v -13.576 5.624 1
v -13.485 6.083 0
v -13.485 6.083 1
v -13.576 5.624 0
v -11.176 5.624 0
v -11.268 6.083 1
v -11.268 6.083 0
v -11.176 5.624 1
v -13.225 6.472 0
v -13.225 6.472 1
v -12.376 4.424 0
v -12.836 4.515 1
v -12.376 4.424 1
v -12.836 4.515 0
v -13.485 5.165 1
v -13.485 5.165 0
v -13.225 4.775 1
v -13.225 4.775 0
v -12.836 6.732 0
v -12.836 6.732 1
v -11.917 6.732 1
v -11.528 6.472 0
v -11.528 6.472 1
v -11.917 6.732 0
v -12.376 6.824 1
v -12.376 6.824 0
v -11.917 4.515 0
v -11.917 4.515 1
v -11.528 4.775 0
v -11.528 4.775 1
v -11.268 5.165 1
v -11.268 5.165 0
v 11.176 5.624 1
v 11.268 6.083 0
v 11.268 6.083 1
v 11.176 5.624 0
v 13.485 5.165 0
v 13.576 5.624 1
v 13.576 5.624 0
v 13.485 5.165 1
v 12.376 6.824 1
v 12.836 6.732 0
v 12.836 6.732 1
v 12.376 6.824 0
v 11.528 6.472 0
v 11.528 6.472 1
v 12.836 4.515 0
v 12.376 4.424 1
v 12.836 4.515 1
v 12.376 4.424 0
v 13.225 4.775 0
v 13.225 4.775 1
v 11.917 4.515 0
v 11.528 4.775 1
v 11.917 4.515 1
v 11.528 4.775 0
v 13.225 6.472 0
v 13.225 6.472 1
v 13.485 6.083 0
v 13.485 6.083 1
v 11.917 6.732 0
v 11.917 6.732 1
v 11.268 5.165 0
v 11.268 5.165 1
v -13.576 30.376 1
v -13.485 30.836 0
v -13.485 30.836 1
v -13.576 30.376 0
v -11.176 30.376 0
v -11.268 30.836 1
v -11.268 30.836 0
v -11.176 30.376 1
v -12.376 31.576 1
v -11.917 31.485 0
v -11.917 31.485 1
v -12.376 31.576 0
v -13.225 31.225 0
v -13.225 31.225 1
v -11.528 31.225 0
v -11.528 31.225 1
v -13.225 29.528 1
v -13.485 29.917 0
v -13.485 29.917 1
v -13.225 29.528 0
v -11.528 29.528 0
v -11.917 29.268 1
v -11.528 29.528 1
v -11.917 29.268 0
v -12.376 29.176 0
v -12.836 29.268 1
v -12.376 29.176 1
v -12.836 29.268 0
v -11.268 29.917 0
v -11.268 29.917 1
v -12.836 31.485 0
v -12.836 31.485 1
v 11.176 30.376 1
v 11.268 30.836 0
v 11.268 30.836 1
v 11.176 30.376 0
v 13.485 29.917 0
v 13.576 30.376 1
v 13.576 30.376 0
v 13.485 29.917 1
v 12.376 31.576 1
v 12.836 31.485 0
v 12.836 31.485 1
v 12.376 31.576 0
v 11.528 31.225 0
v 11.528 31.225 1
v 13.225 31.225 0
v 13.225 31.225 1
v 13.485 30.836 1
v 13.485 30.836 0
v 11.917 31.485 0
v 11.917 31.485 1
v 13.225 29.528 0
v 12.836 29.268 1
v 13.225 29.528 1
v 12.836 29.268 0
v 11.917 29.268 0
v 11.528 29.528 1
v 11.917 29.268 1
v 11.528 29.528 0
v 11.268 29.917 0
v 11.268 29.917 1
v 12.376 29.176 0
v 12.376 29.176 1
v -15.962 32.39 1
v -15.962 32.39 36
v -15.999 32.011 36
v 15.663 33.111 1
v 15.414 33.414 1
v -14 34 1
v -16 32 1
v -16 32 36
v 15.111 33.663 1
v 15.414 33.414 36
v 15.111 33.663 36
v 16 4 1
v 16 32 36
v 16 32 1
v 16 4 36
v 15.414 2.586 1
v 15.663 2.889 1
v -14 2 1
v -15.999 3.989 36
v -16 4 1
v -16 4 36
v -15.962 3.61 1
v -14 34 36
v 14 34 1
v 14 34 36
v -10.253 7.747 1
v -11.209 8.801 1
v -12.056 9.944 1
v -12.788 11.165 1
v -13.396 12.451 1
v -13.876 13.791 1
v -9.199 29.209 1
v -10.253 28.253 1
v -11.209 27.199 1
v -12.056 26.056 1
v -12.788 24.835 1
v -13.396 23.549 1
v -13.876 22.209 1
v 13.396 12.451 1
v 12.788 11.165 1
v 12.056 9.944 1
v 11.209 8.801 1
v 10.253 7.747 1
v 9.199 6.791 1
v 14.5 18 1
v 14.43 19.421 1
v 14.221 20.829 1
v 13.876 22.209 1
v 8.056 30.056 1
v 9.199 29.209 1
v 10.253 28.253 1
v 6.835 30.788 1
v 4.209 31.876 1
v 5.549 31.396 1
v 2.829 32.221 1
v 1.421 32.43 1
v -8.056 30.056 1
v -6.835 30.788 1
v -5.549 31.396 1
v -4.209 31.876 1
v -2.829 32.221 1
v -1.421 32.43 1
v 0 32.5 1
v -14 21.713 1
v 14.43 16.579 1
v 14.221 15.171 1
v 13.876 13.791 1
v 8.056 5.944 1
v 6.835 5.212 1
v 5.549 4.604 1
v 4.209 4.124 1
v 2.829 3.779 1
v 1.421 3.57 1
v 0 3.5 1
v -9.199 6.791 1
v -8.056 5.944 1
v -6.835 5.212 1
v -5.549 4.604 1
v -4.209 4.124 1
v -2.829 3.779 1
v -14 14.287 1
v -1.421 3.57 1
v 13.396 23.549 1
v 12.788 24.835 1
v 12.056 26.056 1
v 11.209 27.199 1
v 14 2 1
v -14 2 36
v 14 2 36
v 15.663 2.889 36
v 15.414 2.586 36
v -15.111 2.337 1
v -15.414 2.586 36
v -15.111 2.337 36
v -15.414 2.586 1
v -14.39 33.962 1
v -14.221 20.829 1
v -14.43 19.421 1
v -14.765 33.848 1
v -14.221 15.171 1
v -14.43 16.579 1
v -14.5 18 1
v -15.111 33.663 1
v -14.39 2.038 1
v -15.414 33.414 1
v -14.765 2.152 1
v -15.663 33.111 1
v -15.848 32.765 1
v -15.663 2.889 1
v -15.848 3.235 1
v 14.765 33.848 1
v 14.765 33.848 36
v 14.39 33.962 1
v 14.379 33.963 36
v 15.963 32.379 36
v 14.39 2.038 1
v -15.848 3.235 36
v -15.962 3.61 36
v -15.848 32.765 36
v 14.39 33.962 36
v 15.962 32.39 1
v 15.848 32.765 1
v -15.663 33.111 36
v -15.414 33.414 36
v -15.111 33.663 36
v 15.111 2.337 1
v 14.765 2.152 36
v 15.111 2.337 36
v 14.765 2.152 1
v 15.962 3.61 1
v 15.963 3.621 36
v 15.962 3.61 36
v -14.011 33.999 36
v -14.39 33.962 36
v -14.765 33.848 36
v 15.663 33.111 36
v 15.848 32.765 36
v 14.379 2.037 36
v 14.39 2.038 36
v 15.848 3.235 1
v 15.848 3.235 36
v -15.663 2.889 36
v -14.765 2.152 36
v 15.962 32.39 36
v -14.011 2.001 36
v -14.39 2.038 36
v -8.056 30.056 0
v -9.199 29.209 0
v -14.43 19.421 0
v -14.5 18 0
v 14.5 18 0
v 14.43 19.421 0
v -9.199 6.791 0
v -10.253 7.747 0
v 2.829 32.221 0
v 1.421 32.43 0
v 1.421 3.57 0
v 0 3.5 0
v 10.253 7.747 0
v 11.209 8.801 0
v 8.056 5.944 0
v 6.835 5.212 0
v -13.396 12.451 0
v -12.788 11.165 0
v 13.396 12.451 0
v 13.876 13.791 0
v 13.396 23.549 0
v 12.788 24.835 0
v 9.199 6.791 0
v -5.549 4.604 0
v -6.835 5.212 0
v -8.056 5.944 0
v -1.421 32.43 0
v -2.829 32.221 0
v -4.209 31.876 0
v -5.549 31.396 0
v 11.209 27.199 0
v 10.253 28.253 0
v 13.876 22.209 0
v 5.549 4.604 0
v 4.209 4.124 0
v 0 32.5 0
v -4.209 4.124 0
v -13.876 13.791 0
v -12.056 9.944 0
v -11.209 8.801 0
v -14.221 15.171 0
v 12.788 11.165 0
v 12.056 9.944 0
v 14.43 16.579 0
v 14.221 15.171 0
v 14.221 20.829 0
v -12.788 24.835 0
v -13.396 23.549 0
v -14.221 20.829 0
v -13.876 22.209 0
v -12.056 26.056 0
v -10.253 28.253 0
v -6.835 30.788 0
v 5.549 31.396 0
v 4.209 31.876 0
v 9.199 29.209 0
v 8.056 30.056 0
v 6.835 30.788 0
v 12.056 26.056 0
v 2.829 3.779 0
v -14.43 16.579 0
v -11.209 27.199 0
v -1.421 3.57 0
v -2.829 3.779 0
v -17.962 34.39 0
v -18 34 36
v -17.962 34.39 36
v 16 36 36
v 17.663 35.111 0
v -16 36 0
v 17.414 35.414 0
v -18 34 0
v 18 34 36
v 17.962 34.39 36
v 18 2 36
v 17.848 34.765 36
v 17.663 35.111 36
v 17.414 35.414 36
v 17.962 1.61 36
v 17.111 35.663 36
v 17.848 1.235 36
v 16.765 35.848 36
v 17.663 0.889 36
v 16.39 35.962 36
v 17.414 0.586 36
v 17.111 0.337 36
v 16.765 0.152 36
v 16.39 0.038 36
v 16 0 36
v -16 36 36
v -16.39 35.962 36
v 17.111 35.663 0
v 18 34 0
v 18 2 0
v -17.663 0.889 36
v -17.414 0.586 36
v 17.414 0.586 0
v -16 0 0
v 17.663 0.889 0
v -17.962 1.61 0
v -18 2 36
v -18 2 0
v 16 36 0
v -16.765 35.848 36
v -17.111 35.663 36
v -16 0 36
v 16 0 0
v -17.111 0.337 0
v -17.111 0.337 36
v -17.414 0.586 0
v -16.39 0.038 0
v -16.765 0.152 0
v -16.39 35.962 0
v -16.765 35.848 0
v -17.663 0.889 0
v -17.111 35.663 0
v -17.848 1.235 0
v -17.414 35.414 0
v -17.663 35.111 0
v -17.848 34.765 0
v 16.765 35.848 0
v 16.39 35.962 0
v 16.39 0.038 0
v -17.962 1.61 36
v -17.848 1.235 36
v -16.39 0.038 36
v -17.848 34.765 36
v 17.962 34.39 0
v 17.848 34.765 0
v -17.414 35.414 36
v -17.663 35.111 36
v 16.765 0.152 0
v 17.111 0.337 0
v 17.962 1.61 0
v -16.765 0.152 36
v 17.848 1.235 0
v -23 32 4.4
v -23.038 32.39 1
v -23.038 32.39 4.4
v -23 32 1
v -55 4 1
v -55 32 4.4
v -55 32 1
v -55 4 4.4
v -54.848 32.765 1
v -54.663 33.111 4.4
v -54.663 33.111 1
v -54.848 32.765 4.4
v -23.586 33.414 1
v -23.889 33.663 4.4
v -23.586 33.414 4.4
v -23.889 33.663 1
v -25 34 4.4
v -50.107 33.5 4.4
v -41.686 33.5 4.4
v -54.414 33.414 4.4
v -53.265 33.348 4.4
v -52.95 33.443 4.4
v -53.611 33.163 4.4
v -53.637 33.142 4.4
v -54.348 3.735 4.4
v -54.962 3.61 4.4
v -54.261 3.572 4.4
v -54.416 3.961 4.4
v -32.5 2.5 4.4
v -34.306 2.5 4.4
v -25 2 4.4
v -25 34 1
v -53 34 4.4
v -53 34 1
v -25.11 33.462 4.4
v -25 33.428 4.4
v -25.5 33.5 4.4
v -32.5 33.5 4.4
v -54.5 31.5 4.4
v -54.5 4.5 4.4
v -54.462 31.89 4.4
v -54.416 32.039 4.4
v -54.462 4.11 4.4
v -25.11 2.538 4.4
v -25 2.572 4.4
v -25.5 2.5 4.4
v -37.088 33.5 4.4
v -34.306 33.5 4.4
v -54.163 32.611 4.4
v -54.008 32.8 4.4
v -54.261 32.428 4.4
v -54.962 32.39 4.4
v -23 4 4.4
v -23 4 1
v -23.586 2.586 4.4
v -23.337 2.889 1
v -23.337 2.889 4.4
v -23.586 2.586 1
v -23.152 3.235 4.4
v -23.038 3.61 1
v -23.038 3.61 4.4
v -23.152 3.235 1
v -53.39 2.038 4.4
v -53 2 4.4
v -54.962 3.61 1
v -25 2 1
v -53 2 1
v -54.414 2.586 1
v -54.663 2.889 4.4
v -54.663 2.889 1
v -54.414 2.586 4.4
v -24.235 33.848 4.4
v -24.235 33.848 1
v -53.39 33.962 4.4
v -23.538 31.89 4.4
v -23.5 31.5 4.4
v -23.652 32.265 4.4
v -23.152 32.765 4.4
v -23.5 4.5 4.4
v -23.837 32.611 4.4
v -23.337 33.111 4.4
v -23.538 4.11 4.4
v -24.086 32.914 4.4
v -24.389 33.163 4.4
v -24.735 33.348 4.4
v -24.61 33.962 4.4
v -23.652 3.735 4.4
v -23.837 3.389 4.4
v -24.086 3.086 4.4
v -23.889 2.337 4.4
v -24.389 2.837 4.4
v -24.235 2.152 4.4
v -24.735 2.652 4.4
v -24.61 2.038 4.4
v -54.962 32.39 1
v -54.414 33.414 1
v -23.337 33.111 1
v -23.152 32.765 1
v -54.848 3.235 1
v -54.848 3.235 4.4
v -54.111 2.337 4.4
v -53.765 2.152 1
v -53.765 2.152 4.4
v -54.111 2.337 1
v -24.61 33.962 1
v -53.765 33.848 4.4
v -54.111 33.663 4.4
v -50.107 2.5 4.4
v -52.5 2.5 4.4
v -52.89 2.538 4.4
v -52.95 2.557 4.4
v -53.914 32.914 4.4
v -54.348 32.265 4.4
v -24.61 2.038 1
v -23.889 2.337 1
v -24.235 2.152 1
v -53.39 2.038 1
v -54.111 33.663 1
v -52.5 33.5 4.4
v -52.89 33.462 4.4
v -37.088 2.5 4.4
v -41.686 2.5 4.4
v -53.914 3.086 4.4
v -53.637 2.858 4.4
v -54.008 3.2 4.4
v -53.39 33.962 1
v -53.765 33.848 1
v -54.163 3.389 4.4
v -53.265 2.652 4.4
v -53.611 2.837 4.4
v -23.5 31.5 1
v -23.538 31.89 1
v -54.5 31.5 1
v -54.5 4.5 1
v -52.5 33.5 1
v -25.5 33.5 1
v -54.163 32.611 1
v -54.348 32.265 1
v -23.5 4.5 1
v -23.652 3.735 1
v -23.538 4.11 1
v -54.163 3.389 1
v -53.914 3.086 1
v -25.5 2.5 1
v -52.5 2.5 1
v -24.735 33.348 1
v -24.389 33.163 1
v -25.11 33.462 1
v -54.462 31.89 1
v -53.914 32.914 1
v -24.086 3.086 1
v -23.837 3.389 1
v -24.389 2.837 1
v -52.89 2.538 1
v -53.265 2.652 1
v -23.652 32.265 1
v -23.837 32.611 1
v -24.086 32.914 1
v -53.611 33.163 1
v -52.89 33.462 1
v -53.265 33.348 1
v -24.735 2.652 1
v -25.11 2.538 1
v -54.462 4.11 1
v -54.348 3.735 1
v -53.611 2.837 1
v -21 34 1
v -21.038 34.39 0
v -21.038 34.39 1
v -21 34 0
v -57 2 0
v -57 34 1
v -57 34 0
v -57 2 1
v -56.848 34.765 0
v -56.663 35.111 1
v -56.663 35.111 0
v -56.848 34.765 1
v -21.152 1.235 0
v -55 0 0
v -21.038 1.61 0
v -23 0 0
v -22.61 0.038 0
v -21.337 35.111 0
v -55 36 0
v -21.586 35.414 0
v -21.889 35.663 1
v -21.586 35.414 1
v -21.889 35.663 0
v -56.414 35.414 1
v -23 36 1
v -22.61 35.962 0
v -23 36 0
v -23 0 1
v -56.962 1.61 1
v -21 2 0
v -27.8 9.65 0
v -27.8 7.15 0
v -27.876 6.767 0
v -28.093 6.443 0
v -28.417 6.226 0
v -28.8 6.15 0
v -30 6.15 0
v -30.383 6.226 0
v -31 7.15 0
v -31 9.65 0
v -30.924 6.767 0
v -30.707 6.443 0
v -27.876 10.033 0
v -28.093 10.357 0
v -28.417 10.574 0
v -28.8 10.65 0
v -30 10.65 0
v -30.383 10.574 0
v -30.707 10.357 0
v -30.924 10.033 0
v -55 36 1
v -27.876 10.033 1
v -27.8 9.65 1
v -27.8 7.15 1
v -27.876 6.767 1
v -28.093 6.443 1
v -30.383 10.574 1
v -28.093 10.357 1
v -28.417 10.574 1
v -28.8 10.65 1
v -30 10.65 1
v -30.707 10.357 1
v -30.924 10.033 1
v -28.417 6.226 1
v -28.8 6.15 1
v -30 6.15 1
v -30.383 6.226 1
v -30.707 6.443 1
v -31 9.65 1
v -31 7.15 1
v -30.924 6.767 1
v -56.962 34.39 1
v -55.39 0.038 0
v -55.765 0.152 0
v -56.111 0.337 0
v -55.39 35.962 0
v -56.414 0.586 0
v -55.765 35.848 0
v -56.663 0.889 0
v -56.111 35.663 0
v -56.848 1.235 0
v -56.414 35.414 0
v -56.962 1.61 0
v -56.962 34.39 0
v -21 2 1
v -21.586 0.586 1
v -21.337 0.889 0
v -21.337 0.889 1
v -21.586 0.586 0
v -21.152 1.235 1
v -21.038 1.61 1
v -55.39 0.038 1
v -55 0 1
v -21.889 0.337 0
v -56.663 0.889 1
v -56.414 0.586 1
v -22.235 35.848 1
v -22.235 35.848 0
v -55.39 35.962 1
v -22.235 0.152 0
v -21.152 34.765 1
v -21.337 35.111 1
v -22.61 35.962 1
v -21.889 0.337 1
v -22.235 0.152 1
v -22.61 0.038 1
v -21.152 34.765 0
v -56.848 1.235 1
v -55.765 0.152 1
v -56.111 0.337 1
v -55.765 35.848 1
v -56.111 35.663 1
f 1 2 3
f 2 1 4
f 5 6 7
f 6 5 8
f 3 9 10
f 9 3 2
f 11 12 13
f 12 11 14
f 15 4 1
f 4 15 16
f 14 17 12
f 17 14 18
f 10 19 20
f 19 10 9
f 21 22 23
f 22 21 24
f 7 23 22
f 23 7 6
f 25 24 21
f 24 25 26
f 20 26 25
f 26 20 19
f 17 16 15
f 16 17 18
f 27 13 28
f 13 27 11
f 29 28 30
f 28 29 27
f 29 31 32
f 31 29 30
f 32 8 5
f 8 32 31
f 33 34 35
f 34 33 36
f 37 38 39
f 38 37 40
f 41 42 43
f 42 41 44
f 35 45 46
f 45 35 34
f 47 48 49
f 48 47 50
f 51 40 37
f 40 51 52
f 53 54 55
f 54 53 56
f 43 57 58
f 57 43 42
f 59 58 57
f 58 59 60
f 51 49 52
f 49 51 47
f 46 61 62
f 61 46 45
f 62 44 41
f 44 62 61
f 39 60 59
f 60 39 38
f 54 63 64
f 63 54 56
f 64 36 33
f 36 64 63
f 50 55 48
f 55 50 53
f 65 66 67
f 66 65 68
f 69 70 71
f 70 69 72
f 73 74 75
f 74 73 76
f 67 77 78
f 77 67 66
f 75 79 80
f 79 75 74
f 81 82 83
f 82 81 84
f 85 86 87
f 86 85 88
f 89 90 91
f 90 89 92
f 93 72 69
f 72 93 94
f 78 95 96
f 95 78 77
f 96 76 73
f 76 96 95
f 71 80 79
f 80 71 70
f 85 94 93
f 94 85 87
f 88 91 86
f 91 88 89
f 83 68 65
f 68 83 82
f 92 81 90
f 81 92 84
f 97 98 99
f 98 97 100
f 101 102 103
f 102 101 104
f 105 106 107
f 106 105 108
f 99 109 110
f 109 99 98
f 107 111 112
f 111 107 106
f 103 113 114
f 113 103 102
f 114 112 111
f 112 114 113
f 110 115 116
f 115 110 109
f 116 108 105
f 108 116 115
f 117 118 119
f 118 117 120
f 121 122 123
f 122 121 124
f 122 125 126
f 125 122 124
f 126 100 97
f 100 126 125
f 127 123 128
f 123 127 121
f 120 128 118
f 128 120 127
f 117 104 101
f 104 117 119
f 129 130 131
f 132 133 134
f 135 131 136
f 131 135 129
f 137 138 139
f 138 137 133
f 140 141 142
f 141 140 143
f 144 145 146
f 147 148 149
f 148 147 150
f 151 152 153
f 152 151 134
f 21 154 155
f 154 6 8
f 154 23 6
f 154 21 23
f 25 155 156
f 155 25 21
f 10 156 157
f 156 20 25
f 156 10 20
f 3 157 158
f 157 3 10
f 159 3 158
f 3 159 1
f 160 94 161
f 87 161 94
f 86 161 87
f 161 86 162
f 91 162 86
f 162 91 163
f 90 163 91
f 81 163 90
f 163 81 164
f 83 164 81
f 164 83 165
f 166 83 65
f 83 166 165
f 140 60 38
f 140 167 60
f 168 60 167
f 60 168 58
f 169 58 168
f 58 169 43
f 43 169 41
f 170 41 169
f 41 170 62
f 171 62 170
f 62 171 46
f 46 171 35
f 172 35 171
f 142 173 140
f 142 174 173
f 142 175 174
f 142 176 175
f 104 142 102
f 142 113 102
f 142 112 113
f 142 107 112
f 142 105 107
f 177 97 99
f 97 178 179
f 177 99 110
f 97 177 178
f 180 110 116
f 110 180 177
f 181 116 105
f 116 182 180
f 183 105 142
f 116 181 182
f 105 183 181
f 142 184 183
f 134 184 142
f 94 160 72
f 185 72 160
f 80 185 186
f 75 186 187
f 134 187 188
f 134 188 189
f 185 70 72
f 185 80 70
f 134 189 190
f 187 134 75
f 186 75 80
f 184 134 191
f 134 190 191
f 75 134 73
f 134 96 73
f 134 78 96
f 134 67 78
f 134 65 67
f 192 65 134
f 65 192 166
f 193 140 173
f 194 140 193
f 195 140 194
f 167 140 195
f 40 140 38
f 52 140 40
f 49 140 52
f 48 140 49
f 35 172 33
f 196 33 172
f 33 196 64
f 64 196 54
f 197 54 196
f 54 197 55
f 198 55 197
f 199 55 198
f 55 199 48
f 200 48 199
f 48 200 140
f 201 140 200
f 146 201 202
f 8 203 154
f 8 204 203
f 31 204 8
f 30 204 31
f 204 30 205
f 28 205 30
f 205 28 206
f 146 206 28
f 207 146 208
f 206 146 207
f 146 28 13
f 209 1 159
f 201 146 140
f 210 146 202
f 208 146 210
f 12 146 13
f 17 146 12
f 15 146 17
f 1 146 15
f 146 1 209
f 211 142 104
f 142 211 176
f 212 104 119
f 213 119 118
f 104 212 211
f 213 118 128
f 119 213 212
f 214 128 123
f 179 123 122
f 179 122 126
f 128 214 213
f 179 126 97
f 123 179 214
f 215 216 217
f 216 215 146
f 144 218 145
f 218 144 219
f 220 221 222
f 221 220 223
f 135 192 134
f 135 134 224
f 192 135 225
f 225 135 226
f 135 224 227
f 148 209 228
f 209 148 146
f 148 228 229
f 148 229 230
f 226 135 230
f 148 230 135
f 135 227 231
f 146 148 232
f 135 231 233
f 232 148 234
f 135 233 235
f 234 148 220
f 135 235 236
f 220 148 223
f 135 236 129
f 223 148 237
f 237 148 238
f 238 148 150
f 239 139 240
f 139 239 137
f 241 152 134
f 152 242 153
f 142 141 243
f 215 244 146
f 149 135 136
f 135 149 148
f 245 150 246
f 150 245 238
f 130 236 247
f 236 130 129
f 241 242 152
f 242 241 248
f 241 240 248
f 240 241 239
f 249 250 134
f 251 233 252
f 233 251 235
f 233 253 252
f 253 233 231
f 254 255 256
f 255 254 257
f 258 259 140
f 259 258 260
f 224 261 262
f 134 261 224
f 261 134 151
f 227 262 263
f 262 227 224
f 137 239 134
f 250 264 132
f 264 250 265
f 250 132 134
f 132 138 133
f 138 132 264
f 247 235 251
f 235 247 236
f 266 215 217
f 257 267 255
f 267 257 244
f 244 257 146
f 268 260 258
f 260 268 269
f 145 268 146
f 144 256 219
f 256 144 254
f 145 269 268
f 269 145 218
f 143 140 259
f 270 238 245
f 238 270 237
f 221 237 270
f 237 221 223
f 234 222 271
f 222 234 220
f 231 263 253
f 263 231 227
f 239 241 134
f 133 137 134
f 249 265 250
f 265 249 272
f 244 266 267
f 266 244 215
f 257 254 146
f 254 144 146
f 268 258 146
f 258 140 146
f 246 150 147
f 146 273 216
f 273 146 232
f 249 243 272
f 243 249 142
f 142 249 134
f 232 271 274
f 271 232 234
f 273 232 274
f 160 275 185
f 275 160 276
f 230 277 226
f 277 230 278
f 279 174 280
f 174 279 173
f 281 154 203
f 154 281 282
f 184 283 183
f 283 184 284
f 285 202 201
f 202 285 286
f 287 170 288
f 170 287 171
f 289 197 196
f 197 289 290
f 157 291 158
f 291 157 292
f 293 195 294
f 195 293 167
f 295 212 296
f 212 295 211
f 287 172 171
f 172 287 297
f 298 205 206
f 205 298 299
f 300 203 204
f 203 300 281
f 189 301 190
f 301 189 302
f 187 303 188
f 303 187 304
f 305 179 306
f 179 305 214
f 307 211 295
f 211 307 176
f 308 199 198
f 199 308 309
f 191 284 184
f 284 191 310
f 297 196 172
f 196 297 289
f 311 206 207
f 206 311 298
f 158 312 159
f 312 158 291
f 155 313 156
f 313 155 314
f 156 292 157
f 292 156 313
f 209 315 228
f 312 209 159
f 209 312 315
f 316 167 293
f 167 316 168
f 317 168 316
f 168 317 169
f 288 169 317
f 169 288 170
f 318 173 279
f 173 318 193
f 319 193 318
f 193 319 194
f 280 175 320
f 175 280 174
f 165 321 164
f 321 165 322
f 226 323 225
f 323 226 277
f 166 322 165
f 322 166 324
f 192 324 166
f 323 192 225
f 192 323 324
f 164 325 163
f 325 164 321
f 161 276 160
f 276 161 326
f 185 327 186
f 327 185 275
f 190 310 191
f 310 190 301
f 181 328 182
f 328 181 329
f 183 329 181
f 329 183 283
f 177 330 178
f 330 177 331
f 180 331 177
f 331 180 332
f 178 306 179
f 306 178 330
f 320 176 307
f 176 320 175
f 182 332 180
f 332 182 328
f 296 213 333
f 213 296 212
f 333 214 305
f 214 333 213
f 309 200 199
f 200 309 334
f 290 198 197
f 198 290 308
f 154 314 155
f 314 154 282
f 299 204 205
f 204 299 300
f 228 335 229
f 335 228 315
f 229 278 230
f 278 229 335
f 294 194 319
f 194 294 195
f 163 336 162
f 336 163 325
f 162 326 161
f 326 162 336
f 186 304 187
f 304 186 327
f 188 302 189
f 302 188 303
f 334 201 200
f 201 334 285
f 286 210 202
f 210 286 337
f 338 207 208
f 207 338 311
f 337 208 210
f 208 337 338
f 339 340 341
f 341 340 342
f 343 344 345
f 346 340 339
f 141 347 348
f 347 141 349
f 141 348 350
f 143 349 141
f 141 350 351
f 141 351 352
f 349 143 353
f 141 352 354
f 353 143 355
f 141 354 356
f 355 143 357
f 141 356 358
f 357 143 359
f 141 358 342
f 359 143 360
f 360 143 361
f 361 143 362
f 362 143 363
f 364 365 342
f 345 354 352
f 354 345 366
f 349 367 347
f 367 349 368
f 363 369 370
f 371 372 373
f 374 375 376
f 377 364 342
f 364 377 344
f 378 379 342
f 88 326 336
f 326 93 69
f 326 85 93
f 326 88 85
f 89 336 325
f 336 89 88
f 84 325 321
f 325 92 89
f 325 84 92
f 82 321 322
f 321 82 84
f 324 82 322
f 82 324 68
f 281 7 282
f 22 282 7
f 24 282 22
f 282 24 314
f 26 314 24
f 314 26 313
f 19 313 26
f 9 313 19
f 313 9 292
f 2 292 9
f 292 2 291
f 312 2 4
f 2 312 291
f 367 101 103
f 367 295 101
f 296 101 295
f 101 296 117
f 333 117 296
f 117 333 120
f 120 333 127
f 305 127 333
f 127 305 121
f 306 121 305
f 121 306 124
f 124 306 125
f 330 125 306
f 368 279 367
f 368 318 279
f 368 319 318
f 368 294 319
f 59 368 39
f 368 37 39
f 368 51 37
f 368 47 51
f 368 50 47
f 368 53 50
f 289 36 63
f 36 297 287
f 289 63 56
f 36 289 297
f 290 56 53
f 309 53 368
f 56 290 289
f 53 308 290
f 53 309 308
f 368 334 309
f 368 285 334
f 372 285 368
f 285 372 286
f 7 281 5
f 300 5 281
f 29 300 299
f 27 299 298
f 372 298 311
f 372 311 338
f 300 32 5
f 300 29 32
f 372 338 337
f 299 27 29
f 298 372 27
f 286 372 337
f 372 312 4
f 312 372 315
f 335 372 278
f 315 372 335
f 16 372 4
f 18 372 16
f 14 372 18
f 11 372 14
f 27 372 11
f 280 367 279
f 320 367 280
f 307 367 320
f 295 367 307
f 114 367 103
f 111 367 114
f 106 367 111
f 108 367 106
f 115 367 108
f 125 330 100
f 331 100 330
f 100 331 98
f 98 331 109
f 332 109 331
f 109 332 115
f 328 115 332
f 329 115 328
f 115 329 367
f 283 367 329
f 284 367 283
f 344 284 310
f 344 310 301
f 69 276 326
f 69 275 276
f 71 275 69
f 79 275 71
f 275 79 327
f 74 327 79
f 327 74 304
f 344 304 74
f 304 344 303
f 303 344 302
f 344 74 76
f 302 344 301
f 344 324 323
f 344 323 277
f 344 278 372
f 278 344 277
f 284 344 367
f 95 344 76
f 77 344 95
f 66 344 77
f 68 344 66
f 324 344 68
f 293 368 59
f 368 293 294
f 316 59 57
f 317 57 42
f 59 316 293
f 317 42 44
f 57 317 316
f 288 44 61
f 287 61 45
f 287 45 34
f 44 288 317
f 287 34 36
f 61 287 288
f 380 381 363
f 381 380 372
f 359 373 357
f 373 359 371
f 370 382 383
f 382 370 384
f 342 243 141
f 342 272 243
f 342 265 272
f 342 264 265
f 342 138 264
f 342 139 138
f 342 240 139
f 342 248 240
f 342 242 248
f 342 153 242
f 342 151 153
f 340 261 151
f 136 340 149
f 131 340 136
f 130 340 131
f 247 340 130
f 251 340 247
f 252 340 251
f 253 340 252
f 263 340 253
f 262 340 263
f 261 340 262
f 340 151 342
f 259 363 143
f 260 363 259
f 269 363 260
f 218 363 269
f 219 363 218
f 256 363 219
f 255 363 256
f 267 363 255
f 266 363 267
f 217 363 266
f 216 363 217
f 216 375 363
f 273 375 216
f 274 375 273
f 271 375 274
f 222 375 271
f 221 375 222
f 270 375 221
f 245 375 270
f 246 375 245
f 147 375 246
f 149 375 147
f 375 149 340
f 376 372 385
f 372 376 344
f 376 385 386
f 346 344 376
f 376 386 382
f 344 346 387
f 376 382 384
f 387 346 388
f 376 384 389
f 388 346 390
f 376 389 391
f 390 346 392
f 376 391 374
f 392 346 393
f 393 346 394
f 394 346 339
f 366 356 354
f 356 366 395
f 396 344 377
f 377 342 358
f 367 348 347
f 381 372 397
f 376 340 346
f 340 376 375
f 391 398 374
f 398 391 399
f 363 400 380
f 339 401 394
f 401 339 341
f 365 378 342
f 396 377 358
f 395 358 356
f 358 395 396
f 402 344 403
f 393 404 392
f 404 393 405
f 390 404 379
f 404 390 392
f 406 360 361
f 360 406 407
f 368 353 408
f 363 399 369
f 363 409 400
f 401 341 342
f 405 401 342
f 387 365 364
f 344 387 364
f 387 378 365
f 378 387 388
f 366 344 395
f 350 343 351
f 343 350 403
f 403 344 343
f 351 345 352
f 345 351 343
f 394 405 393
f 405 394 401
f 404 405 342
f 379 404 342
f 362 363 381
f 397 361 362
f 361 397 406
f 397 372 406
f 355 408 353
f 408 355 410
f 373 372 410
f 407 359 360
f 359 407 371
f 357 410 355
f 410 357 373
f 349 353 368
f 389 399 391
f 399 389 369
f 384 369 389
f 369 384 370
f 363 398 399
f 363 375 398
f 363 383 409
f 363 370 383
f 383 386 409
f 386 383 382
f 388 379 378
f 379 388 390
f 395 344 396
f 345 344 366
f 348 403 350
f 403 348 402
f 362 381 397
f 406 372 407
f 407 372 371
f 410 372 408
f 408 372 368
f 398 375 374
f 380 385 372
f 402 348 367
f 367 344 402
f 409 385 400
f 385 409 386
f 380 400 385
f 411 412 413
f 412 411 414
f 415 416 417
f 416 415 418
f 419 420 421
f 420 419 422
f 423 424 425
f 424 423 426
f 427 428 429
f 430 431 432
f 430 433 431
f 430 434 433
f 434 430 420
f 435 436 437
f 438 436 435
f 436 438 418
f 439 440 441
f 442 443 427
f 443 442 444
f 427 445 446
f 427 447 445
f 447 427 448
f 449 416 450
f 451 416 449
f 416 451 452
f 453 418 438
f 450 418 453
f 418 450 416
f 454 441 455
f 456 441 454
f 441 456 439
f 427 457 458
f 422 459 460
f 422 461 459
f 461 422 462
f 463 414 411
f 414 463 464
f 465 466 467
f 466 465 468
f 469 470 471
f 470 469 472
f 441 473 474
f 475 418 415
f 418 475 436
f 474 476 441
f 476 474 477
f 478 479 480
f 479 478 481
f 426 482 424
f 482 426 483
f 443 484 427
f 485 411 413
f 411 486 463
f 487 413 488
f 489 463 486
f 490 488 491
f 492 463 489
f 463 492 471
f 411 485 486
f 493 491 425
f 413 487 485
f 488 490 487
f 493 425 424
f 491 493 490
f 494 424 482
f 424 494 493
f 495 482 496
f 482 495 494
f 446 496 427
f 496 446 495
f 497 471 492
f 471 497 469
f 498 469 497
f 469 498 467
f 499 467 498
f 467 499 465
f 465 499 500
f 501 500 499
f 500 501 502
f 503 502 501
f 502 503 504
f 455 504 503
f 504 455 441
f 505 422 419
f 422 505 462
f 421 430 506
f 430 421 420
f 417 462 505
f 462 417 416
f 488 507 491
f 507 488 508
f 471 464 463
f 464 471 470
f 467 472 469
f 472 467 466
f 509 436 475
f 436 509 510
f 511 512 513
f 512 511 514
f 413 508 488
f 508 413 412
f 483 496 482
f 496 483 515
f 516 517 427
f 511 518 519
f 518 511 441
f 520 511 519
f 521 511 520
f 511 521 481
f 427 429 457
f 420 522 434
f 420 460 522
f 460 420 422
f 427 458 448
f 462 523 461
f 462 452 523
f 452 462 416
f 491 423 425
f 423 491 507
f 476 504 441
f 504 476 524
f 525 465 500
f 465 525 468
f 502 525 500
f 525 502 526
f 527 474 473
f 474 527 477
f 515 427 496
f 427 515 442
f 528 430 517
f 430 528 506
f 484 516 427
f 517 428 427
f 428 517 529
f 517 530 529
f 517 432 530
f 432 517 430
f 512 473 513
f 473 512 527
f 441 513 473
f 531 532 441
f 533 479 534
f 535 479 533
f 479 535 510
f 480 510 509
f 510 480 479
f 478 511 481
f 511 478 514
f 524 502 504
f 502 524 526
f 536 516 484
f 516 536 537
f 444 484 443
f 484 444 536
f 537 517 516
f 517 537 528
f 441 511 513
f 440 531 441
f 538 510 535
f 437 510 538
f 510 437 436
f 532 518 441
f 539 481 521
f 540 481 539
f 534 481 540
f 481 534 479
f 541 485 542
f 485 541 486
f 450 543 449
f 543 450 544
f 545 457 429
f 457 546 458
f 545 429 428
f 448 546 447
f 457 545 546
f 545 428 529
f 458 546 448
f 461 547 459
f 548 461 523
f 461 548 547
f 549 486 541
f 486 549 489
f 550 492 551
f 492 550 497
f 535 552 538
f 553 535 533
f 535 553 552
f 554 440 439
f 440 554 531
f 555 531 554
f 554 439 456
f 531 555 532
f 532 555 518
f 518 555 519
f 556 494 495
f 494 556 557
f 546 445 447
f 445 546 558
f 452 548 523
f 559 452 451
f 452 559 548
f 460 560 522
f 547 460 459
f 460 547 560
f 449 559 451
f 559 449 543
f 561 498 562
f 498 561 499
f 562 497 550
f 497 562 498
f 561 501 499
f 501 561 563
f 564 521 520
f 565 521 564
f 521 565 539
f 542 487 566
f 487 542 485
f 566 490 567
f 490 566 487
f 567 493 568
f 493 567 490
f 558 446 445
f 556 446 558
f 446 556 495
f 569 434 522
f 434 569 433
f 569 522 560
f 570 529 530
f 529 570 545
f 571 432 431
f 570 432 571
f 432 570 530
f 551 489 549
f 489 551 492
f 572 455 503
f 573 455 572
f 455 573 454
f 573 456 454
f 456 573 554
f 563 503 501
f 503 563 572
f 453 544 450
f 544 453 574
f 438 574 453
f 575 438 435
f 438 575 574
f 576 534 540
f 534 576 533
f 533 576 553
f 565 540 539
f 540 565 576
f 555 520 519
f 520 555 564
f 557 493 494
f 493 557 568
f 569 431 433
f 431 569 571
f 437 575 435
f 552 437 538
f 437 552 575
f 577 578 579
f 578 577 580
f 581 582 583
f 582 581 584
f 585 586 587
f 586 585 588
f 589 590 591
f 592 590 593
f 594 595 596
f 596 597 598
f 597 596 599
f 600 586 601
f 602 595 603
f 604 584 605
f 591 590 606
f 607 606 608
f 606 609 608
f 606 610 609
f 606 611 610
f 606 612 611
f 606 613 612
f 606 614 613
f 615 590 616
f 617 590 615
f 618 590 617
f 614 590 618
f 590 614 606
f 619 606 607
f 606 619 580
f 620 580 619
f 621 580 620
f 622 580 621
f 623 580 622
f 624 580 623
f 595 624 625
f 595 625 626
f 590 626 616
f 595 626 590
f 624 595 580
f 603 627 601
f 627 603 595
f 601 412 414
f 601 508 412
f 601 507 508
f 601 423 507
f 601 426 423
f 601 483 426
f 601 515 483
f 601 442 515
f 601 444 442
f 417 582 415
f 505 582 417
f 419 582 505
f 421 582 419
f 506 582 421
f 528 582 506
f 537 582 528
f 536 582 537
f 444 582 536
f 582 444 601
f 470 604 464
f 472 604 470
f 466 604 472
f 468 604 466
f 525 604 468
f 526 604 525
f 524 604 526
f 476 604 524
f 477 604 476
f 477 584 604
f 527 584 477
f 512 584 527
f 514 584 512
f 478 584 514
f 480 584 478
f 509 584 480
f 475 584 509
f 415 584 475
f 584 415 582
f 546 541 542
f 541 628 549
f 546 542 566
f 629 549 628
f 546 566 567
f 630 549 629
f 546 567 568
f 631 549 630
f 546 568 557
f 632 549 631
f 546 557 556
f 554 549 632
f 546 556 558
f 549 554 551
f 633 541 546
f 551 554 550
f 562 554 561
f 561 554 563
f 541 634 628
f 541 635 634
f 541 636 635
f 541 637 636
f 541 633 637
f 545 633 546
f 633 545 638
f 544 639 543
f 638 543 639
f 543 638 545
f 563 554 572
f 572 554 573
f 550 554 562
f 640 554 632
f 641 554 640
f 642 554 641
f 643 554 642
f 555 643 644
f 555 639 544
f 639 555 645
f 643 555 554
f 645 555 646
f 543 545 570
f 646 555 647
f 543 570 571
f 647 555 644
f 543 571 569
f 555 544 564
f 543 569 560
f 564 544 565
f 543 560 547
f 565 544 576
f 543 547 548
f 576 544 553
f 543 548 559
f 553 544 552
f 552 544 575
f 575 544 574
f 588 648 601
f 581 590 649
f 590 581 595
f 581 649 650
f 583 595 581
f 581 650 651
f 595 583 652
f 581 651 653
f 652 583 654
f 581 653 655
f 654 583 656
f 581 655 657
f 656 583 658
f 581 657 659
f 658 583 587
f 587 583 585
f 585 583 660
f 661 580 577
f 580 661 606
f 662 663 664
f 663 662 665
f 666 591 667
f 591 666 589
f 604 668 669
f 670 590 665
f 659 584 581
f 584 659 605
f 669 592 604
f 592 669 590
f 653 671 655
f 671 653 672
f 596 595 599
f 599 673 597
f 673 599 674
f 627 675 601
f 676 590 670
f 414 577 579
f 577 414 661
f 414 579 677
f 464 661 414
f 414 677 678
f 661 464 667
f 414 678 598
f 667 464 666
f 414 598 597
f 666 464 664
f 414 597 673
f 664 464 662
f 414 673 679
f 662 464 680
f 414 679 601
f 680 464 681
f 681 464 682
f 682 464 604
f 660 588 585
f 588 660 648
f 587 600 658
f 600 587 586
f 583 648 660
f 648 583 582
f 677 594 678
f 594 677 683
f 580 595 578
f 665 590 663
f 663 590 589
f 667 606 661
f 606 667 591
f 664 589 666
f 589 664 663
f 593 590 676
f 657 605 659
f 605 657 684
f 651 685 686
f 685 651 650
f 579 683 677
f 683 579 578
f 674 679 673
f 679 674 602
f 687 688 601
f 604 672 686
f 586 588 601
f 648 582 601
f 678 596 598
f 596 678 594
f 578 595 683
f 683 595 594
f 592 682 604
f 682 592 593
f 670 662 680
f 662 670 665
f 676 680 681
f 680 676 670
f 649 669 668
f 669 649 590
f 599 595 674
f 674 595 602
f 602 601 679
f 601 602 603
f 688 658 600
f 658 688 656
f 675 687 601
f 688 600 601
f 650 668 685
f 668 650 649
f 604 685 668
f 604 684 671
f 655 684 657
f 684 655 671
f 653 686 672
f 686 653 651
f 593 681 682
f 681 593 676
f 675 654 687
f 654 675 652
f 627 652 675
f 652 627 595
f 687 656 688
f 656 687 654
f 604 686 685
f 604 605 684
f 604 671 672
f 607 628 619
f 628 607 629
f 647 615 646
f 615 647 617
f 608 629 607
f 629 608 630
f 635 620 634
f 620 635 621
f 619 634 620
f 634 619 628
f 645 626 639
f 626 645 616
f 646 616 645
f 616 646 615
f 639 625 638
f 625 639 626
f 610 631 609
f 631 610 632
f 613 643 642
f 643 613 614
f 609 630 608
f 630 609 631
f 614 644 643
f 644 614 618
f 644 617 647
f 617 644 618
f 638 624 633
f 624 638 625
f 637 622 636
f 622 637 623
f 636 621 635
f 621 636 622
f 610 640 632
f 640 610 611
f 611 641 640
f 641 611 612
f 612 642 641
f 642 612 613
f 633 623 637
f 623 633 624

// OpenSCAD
// file: speaker_stand.scad
//
// Speaker Stand
//
// by Yasuhiro Wabiko
//
// This work is licensed under a Creative Commons Attribution 4.0 International License.
// https://creativecommons.org/licenses/by/4.0/
//
use <prim.scad>

default_stand_z =40;
default_base_x = 36;
default_base_y = 36;
default_base_z = 4;
default_base_r = 2;
default_pole_r = 4; // pole body radius
default_pole_z = 36;
default_pole_rr = 1; // pole corner radius
default_joint_z = 2;
default_joint_extra_z = 0;
default_joint_r = 3;


WELDING = 0.1;

// render target; this is meant to be overriden by Makefile
TARGET="default";

//
// top level logic
//
speaker_stand_main();

module speaker_stand_main(target=TARGET){
    
    if (target == "default") {
        speaker_stand(stand_z=40, base_x=30, base_y=30, pole_r=8);
    }

    if (target == "ce32a") {
        speaker_stand(stand_z=40, base_x=(36-2)*0.8, base_y=(36-2)*0.8, pole_r=4);
    }

    if (target == "ce32a_type2") {
        speaker_stand(stand_z=40, base_x=(33.2-2)*0.8, base_y=(33.2-2)*0.8, pole_r=4);
    }

    if (target == "b1s") {
        speaker_stand(stand_z=40, base_x=(40-2)*0.8, base_y=(40-2)*0.8, pole_r=4);
    }

    if (target == "ce32a_tallboy") {
        speaker_stand(stand_z=40, base_z=0, pole_r=18, base_x=32*0.8, base_y=32*0.8);
    }

    if (target == "b1s_tallboy") {
        speaker_stand(stand_z=40, base_x=(40-2)*0.8, base_y=(40-2)*0.8, pole_r=4);
    }

}

// [Public]
// A speaker stand.
//
// stand_z = total height (= base height + pole height) i.e how high the speaker is put from the ground.
// (base_x, base_y, base_z, base_r) = stand base dimension
// (joint_z, joint_r) = joint configuration
// pole_r = pole radius
//
// NOTE: pole height is generated by total height - base_height.
module speaker_stand(stand_z = default_stand_z,
                     base_x = default_base_x,
                     base_y = default_base_y,
                     base_z = default_base_z,
                     base_r = default_base_r,
                     joint_r = default_joint_r,
                     joint_z = default_joint_z,
                     pole_r = default_pole_r,
                     pole_rr = default_pole_rr) {

    pole_z = stand_z-base_z;

    speaker_stand_unit(stand_z = stand_z,
                       base_x = base_x,
                       base_y = base_y,
                       base_z = base_z,
                       base_r = base_r,
                       joint_r = joint_r,
                       joint_z = joint_z,
                       pole_r = pole_r,
                       pole_z = pole_z,
                       pole_rr = default_pole_rr );
}

// (for testing) when you want to override design parameters in detail
module speaker_stand_unit(stand_z = default_stand_z,
                          base_x = default_base_x,
                          base_y = default_base_y,
                          base_z = default_base_z,
                          base_r = default_base_r,
                          joint_r = default_joint_r,
                          joint_z = default_joint_z,
                          joint_extra_z  = default_joint_extra_z,
                          pole_r = default_pole_r,
                          pole_z = default_pole_z,
                          pole_rr = default_pole_rr,
                          joint_fn = 32,
                          pole_fn = 64,
                          base_fn = 64,
                          clip_z = 0.6) {
    clip_r = joint_r;
    
    translate([0, 0, 0]) {
        // base plate
        translate([0, 0, base_z/2]) {
            prim_round_zplate0(base_x, base_y, base_z, base_r, base_fn);
        }

        translate([0, 0, pole_z/2]) {
            difference() {
                union() {
                    // pole (inner joint)
                    translate([0, 0, pole_z/2+joint_z/2-WELDING+clip_z/2]) {
                        cylinder(r = joint_r, $fn = joint_fn, h = joint_z+WELDING+clip_z, center=true);
                    }

                    // clip
                    translate([0, 0, pole_z/2+joint_z+clip_z/2]) {
                        minkowski() {
                            cylinder(r = clip_r, $fn = joint_fn, h = 0.2, center=true);
                            sphere(r=0.2, $fn=32);
                        }
                    }
                }
                union() {
                    // slits for easier joint 
                    translate([0, 0, pole_z/2]) {
                        for (i=[0:1:7]) {
                            rotate([0,0,45*i]) {
                                cube([8, 0.4, joint_z*6], center=true);
                            }
                        }
                    }

                    // pole (empty inside)
                    translate([0, 0, pole_z/2+joint_z/2-WELDING+clip_z/2]) {
                        //    cylinder(r = joint_r-0.5, $fn = joint_fn, h = joint_z+WELDING*4+clip_z, center=true);
                    }
                }
            } // difference

            // pole (outer)
            translate([0, 0, base_z/2-WELDING]) {
                //cylinder(r = pole_r, $fn = pole_fn, h = pole_z-base_z+WELDING, center=true);
                prim_round_zplate0(pole_r*2, pole_r*2, pole_z-base_z+WELDING, pole_rr, 32);
            }

            // pole (joint's inner stuffing for more strength)
            translate([0, 0, pole_z/2+joint_z/2-WELDING+clip_z/2]) {
                cylinder(r = clip_r-1, $fn = joint_fn, h = joint_z+WELDING+clip_z, center=true);
            }
        }
    }
}
// main file
//
// CE32A 1" Speaker Enclosure Rev.1
//
// by Yasuhiro Wabiko
//
// This work is licensed under a Creative Commons Attribution 4.0 International License.
// https://creativecommons.org/licenses/by/4.0/
//
use <speaker_stand.scad>
use <prim.scad>

// printer error related tweaks
LID_ERROR   = 0.0; // if the lid does not fit, make this larger.
                   // Wood PLA: 0.8 (0.1-0.4 too small). 0.8 a bit too loose.
                   // PLA: 0.4 (0.8 too large, 0.4 a bit large.)

SHELL_ERROR = 0.0; // if the speaker driver does not fit, make this larger.
                   // Wood PLA 0.4
                   // PLA 0.0

// shape parameters
thick = 1.0;  // wall thickness
mink =  0.4;  // minkowski radius
spfn =  8;   // minkowski resolution

// inner size of the box
size_x = 26;
size_y = 32;
size_z = 32;
shell_r = 2;

lid_inner_x = 2.0; // thickness of lid inner part
lid_arm_r = 2.0;
lid_hole_y = 3.0;
lid_hole_z = 2.0;

// further customization example: make a hole on the front surface
// coordinates are from left-bottom edge of inner space

// speaker center hole
speaker_dia = 29; // speaker diameter
front_hole_r0 = speaker_dia/2;
front_spfn   = 64;  // minkowski resolution

// spaker mount holes at corners
MOUNT_DIA    = 35;  // mount holes layout diameter
front_hole_r = 1.2; // mount hole radius
mount_spfn   = 16;  // minkowski resolution
mount_mink   = 0.2;

// a hole on the lid side
lid_hole_y = 3;
lid_hole_z = 3;
lid_hole_r = 2;

//
// internals
//
WELDING = 0.1;

// render target; this is meant to be overriden by Makefile
TARGET="default";

//
// top level logic
//
ce32a_main();

module ce32a_main(target=TARGET){
    
    if (target == "default") {
        ce32a(with_stand=0, with_print=1);
    }

    if (target == "with_stand") {
        ce32a(with_stand=1, with_print=1);
    }

    if (target == "stand_only") {
        oy=36;
        translate([-oy-3, -oy/2+3, 0]) {
            ce32a_unit_stand();
        }
    }

    if (target == "unit_test") {
        translate([40,0,0]) {
            ce32a_unit_body_only(40, 36, 36);
        }
        ce32a_unit_lid_only(40,  36, 36, with_hole=0);
    }

    if (target == "unit_lid_test") {
        rotate([0,-90,0]) {
            ce32a_unit_lid_only(40,  36, 36, lid_thick=3, with_hole=1);
        }
    }

    if (target == "stand_test") {
        translate([0, 3, 0]) {
            ce32a_unit_stand();
        }
    }

    if (target == "joint_test") {
        // render small joint only for joint testing
        translate([3,0,0]) {
            ce32a_unit_stand();
        }
    }
    
}


// -------------------------
// Public Modules
// -------------------------

// [Public]
// Minimum size enclosure.
//
// with_print = { 0: edit layout, 1: print layout}
module ce32a(with_print=1, with_stand=0){
    ce32a_unit(36, 36, 36, with_print=with_print, with_hole=1, with_stand=with_stand);
}

// [Public]
// Variable size enclosure. Typically to be embededd in another project.
// 
// ox, oy, oz = dimension (this has to be equals to or larger than (size_x, size_y, size_z).
// with_print = { 0: edit layout, 1: print layout}
module ce32a_unit(ox, oy, oz, lid_thick=thick, with_print=1, shell_error=SHELL_ERROR, lid_error=LID_ERROR,
                  stand_height=40,
                  with_stand=0, with_hole=0, with_body=1, with_lid=1){
    if (with_print) {
        if (with_body) {
            translate([0, oy/2, ox/2]) {
                rotate([0, 90, 0]) {
                    ce32a_unit_body_only(ox, oy, oz, shell_error=shell_error, with_stand=with_stand);
                }
            }
        }
        if (with_lid) {
            translate([-oy-3, oy/2, 0]) {
                rotate([0, -90, 0]) {
                    ce32a_unit_lid_only(ox, oy, oz, lid_thick=lid_thick, shell_error=shell_error, lid_error=lid_error, with_hole=with_hole);
                }
            }
        }
        if (with_stand) {
            translate([oy+3, oy/2, 0]) {
                rotate([0,0,0]) {
                    ce32a_unit_stand(stand_z=40, base_x=(ox-2)*0.8, base_y=(oy-2)*0.8, base_z=4);
                }
            }
        }
    } else {
        ce32a_unit_body_only(ox, oy, oz, shell_error=shell_error, with_stand=with_stand);
        translate([-ox,0,0]) {
            ce32a_unit_lid_only(ox, oy, oz, lid_thick=lid_thick, shell_error=shell_error, lid_error=lid_error, with_hole=with_hole);
        }
        if (with_stand) {
            translate([40,0,0]) {
                rotate([0,90,0]) {
                    ce32a_unit_stand(stand_z=40, base_x=(ox-2)*0.8, base_y=(oy-2)*0.8, base_z=4);
                }
            }
        }
    }
}

module ce32a_unit_stand(stand_z=40, base_x=36, base_y=36, base_z=4){
    speaker_stand(stand_z=stand_z, base_x=base_x, base_y=base_y, base_z=base_z);
}

// [Public]
// Variable size enclosure (body only). Typically for testing purpose.
// 
// ox, oy, oz = dimension (this has to be equals to or larger than (size_x, size_y, size_z).
module ce32a_unit_body_only(ox, oy, oz, shell_error=SHELL_ERROR, with_stand=0){
    fn = 32;
    difference(){
        translate([0, 0, 0]) {
            prim_round_xplate0(ox, oy, oz, shell_r, fn);
        }
        translate([0, 0, 0])
            ce32a_shell_negative_volume(sx=ox, sy=size_y, sz=size_z, st=thick, sr0=front_hole_r0, sr=front_hole_r, shr=shell_r, sf=fn, se=shell_error, with_stand=with_stand);
    }
}

// [Public]
// Variable size enclosure (lid only). Typically for testing purpose.
// 
// ox, oy, oz = dimension (this has to be equals to or larger than (size_x, size_y, size_z).
// with_hole  = { 0: without hole, 1: with hole } // a hole for cables
// with_arm   = { 0: without arm, 1: with arm }   // arms to support the speaker driver (experimental)
module ce32a_unit_lid_only(ox, oy, oz, lid_thick=thick, with_hole=0, with_arm=0, shell_error=SHELL_ERROR, lid_error=LID_ERROR){
    // arm
    if (with_arm) {
        translate([0,0,0]) {
            ce32a_lid_arm(ox, oy-thick*2, oz-thick*2, thick, lid_arm_r, spfn);
        }
    }

    // lid
    translate([lid_thick/2,0,0]) {
        difference(){
            ce32a_lid_body(ox, oy, oz, size_x, size_y, size_z, lid_thick, lid_inner_x, mink, shell_r, spfn, se=shell_error, le=lid_error, with_hole=with_hole);
            ce32a_lid_negative_volume(ox, oy-thick*2.1, oz-thick*2.1, size_x, size_y, size_z, lid_hole_y, lid_hole_z, lid_thick, lid_inner_x, mink, shell_r, spfn, with_hole=with_hole);
        }
            
    }
}


// -------------------------
// Private Modules
// -------------------------

// cube inner volume (negative volume. this part will be subtracted to make room for stuffings.)
module ce32a_shell_negative_volume(sx, sy, sz, st, sr0, sr, shr, sf, se=SHELL_ERROR, with_stand=1) {
    translate([-thick,0,0]) {
        #prim_round_xplate0(sx, sy+se, sz+se, shr, sf);
    }

    // center speaker hole
    translate([sx/2, 0, 0]) {
        rotate([0, 90, 0]) {
            #cylinder(r = sr0, $fn = 64, h=st*3, center=true);
            }
    }

    dd = MOUNT_DIA/1.414/2; // 1.414 = sqrt(2); y- and z-axis distance from center to mount holes
    
    // corner mount holes
    translate([sx/2+st/2, 0, 0]) {
        for (ix=[-1,1]) {
            for (iy=[-1,1]) {
                translate([0, dd*ix, dd*iy]) {
                    rotate([0, 90, 0]) {
                        #cylinder(r = sr, $fn = 16, h = st*4, center=true);
                    }
                }
            }
        }
    }

    if (with_stand) {
        translate([0, 0, sz/2+st/2]) {
            #cylinder(r = 3, $fn = 32, h = st*4, center=true);
        }
    }

}

// experimental: arms to support speaker driver
module ce32a_lid_arm(sx, sy, sz, st, sr, sf) {
    dx = 4;
    dy = sy/2-st-sr*1.1;
    dz = sz/2-st-sr*1.1;
    translate([-dx/2, 0, 0]) {
        for (iy=[-1,1]) {
            for (iz=[-1,1]) {
                translate([0, dy*iy, dz*iz]) {
                    rotate([0, 90, 0]) {
                        cylinder(r = sr, $fn = 16, h = sx-dx, center=true);
                    }
                }
            }
        }
    }
}

module ce32a_lid_body(ox, oy, oz, sx, sy, sz, st, lt, sr, shr, sf, se=SHELL_ERROR, le=LID_ERROR, with_hole=0) {
    fn = 32;
    // outer
    prim_round_xplate0(st, oy, oz, shr, fn);

    // inner
    translate([lt-WELDING,0,0]) {
        difference(){
            prim_round_xplate0(lt*2, sy-le+se, sz-le+se, shr, fn);
            translate([WELDING,0,0]) {
                prim_round_xplate0(lt*2+WELDING, sy-st-le+se, sz-st-le+se, shr, fn);
            }
        }
    }
}


module ce32a_lid_negative_volume(ox, oy, oz, sx, sy, sz, hy, hz, st, lt, sr, shr, sf, with_hole=1) {
    y3 = 6; // 3-cable width (22 AWG)
    y2 = 4.5; // 2-cable width (22 AWG)
    z1 = 3.2; // 1-cable height (22 AWG)

    // cable hole
    if (with_hole) {
        translate([lt,-sy*0.3,-sz*0.3]) {
            #prim_round_xplate0(lt*3, y2, z1, 1, 16);
        }
    }
}
